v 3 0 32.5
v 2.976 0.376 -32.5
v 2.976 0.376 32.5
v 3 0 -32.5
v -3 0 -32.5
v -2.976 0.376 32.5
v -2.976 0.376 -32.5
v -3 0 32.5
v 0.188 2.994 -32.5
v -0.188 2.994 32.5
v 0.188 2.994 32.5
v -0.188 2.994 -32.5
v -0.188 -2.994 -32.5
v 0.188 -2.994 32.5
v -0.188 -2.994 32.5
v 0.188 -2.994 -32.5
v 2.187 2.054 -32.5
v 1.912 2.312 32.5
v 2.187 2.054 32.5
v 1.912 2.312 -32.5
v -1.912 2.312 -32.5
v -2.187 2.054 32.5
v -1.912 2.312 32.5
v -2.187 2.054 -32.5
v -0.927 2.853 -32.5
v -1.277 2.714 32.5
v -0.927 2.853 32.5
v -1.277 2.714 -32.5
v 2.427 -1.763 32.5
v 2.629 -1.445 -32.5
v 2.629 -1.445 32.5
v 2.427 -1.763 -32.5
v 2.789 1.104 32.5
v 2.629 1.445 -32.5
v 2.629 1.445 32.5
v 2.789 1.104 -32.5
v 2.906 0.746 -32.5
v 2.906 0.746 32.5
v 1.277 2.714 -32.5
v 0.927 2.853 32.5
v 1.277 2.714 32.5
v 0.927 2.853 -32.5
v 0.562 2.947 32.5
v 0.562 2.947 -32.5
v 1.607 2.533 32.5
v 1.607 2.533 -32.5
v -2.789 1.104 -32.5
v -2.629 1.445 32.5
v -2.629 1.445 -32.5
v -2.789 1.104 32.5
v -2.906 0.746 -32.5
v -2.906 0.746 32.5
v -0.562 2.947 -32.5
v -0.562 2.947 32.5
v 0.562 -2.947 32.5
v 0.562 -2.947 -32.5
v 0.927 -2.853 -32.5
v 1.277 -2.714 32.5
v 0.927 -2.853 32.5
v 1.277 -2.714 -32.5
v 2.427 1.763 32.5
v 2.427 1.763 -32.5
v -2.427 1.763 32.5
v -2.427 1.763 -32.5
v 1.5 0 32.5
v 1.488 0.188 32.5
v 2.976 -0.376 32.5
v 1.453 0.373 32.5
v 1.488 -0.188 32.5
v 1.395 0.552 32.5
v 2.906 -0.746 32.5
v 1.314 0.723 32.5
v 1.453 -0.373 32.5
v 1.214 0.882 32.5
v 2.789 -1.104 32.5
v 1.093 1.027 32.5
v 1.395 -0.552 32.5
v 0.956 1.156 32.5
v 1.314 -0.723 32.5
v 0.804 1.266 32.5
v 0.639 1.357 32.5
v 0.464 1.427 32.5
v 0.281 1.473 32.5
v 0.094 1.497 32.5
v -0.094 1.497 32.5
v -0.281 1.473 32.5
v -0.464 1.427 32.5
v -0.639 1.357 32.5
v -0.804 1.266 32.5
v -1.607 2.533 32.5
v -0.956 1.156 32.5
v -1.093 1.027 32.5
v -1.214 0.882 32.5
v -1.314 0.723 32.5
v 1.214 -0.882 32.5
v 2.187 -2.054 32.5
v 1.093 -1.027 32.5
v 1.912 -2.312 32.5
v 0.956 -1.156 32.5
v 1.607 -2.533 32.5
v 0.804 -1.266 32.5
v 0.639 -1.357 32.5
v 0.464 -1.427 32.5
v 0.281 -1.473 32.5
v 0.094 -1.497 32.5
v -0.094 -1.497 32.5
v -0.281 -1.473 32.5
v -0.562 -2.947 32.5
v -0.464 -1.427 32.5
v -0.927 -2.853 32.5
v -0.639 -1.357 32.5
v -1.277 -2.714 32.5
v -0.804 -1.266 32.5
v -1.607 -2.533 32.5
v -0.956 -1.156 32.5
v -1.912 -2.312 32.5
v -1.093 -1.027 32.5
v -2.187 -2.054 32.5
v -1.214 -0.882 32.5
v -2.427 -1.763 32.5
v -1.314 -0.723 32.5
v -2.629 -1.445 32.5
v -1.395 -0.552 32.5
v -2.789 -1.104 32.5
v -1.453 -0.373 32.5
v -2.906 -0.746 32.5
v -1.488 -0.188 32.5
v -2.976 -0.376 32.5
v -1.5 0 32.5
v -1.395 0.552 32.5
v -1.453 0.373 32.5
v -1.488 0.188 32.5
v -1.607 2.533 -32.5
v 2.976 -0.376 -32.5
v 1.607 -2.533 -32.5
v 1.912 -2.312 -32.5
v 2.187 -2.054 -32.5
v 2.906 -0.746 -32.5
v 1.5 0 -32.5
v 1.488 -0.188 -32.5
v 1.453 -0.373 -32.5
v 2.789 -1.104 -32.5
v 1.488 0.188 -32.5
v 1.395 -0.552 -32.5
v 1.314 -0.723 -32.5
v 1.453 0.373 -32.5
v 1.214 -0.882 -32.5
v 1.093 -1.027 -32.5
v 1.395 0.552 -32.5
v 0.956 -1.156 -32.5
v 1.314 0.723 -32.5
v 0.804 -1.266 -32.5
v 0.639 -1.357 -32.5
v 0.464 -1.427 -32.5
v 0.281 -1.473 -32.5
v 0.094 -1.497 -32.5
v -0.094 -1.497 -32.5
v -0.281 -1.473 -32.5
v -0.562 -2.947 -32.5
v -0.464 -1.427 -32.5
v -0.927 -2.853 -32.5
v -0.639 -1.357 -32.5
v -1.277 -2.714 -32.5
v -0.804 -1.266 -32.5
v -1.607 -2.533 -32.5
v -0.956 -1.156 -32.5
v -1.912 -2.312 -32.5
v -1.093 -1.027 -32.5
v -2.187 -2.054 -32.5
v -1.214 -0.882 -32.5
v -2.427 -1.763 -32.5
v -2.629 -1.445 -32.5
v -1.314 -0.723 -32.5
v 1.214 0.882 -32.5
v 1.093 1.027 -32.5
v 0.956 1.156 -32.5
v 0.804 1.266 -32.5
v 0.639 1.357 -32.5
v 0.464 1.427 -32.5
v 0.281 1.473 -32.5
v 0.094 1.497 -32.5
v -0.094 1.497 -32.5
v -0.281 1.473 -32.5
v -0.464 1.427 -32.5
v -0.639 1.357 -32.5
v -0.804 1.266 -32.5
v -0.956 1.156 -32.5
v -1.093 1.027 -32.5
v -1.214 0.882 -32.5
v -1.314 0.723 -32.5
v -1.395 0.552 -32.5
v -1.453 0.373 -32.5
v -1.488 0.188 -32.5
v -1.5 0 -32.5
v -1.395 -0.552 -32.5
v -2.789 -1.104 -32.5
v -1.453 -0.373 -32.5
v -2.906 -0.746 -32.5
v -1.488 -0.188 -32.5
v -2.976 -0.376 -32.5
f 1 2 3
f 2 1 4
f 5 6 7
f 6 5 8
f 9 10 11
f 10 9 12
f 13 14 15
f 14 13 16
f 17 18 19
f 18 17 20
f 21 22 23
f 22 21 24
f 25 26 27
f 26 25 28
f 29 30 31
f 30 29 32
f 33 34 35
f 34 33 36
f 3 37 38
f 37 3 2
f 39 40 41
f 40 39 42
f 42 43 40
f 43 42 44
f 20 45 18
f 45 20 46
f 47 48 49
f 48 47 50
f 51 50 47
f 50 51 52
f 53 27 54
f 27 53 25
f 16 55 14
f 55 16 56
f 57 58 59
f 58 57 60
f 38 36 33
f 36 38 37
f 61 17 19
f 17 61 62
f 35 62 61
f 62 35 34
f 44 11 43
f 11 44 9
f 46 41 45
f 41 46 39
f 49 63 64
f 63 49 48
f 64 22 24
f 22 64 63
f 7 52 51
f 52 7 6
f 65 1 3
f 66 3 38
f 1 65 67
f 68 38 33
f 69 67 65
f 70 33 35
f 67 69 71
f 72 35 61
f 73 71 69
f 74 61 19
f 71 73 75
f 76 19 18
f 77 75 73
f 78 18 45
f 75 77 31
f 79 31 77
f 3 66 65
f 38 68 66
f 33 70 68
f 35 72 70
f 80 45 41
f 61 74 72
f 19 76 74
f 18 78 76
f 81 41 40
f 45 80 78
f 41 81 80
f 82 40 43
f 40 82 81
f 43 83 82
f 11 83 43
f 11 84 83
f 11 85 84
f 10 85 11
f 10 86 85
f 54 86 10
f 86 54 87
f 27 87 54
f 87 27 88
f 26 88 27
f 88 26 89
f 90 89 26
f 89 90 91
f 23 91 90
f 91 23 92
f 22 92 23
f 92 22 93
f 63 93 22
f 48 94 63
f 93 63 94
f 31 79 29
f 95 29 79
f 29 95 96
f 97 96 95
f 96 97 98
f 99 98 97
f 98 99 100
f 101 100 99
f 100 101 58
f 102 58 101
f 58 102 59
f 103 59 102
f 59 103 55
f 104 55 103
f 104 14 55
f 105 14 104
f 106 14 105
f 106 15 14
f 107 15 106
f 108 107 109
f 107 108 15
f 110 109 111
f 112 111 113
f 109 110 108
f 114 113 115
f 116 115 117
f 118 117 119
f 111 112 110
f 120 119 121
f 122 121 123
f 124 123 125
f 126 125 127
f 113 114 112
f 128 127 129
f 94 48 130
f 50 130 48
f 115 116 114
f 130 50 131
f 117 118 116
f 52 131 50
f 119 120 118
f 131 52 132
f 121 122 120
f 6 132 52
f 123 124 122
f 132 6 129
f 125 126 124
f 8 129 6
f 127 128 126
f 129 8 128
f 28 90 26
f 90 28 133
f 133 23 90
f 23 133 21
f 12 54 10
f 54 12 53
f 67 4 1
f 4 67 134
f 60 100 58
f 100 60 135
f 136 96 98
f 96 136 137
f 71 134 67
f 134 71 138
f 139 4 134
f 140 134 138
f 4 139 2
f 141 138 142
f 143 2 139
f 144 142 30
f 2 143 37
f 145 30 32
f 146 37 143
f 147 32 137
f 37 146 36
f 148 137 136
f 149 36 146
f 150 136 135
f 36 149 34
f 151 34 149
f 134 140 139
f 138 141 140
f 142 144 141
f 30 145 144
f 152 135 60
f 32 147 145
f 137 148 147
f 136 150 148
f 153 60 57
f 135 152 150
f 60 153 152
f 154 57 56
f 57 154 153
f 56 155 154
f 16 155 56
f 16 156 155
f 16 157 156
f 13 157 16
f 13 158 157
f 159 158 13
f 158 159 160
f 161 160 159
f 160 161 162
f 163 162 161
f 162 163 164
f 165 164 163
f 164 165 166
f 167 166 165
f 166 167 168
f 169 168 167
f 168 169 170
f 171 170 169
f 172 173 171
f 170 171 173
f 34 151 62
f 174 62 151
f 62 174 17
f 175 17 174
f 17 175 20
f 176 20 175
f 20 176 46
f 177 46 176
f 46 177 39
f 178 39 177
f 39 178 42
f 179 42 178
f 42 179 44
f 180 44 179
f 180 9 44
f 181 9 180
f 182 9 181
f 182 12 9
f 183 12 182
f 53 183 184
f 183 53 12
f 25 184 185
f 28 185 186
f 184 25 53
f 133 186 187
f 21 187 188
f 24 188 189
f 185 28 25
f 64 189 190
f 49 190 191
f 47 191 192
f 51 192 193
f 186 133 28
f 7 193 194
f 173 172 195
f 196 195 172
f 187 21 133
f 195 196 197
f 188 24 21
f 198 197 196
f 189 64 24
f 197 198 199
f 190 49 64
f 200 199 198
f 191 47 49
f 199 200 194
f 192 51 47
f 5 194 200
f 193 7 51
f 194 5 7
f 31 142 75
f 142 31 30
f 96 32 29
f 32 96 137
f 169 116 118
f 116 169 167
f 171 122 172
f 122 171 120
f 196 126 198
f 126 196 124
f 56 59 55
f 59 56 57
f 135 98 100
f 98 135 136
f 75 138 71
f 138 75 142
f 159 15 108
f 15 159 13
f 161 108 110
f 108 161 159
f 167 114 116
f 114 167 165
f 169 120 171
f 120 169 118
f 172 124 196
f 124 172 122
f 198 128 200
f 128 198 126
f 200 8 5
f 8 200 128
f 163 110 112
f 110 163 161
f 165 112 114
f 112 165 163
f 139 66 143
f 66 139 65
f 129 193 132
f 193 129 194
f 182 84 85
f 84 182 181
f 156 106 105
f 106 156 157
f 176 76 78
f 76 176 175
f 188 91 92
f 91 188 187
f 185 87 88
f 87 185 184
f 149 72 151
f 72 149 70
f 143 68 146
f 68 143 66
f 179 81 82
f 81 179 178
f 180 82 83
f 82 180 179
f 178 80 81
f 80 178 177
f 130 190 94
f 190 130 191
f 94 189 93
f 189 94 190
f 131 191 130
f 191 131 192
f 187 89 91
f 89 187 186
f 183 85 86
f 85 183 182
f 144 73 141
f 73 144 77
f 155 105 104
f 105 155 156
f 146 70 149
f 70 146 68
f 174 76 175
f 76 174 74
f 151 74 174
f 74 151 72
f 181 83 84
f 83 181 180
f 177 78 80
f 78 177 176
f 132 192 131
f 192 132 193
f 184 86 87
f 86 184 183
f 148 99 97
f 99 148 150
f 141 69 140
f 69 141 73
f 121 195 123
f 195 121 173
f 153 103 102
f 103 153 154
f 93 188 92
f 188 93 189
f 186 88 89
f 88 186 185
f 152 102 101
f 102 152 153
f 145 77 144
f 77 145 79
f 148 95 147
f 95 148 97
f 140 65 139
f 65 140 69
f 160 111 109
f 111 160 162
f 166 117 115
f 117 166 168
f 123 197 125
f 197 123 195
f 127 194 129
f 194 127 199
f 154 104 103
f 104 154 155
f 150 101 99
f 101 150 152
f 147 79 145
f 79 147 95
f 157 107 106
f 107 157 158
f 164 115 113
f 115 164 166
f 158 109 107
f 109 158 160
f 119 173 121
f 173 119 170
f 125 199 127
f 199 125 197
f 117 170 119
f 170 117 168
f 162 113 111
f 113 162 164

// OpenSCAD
$fn = 50;


difference() {
	union() {
		translate(v = [0, 0, -32.5000000000]) {
			cylinder(h = 65, r = 3.0000000000);
		}
	}
	union() {
		translate(v = [0, 0, -100.0000000000]) {
			cylinder(h = 200, r = 1.5000000000);
		}
	}
}
